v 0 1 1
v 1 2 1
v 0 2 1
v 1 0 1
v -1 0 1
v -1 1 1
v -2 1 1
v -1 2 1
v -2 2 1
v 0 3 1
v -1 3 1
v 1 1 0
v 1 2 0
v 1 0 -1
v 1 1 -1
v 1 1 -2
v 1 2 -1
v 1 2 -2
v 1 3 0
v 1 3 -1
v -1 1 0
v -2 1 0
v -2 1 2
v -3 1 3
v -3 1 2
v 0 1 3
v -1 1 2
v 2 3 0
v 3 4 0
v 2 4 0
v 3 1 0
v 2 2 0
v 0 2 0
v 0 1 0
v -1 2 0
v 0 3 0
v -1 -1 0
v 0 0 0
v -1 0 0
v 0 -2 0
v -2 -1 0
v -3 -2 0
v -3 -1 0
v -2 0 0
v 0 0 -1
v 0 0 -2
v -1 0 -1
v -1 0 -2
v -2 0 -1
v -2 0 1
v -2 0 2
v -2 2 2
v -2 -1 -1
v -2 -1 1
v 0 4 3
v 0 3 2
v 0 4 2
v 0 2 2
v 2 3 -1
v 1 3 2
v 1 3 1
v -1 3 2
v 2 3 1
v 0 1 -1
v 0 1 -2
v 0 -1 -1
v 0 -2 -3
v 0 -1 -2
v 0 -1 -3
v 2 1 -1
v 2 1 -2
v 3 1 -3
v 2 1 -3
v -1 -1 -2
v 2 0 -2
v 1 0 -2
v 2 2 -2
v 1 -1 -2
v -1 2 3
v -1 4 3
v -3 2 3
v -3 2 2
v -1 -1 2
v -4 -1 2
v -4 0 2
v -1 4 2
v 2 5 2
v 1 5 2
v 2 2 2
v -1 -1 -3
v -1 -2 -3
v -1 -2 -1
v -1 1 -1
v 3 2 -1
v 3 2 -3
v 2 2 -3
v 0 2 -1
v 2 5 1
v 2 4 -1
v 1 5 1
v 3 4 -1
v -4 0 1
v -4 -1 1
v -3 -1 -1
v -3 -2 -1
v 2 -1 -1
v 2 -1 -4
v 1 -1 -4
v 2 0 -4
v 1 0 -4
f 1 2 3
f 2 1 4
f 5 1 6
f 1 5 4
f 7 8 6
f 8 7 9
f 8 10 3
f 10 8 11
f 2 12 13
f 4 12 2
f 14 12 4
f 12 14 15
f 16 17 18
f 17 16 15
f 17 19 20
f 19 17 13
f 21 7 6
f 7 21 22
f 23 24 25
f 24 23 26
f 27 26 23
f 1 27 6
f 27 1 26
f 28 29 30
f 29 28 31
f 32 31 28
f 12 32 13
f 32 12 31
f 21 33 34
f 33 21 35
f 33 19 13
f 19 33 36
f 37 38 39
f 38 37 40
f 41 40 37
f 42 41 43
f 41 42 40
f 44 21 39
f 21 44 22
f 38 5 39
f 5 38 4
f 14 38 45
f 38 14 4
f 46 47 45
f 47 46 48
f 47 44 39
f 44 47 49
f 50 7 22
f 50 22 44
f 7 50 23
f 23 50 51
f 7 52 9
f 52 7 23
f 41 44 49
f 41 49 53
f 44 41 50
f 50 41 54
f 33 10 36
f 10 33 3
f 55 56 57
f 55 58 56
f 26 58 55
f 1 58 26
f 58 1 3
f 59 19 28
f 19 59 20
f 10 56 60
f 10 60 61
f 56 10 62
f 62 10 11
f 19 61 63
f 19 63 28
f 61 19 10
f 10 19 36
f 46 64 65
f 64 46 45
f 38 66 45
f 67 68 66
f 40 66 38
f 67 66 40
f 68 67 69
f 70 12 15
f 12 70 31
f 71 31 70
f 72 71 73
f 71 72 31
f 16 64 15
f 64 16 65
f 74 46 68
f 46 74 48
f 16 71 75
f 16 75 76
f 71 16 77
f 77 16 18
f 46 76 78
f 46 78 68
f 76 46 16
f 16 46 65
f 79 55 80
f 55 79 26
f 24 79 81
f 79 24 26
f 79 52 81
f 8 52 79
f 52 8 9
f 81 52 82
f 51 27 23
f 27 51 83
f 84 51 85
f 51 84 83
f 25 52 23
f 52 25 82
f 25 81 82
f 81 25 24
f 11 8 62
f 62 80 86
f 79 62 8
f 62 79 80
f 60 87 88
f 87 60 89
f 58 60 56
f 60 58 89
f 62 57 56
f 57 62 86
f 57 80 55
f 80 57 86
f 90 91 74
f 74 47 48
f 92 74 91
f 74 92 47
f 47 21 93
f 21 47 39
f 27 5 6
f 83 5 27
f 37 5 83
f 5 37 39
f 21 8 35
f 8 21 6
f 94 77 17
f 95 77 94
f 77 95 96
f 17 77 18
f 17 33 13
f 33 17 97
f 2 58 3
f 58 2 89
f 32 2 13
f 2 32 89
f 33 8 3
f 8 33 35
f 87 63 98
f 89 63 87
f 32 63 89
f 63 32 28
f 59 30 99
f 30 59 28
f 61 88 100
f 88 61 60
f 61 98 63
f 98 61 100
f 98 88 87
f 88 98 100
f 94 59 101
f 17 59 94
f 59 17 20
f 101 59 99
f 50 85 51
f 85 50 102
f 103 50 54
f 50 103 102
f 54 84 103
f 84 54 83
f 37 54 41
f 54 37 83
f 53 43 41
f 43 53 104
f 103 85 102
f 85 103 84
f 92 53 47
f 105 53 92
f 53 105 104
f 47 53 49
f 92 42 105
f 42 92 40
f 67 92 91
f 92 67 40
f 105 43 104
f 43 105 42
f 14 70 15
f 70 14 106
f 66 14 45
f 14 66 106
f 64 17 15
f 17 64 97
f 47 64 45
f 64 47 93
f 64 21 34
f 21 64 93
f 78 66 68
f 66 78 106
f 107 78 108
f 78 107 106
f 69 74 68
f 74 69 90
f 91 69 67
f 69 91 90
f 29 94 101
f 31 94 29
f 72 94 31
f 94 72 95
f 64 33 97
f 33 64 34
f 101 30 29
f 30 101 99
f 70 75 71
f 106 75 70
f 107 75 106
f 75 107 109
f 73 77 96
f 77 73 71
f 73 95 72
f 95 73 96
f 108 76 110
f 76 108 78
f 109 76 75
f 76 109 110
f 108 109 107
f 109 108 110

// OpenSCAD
module module_cube_4(translation= [0,0,0]){
    translate(translation)union() {
cube(1,1,1);    
translate([-1,0,0])cube(size = [1,1,1]);
translate([0,1,0])cube(size = [1,1,1]);
translate([0,0,-1])cube(size = [1,1,1]);
    }
};
module module_cube_7(translation= [0,0,0]){
    translate(translation)union() {
cube(1,1,1);    
translate([-2,0,0])cube(size = [2,1,1]);
translate([0,1,0])cube(size = [1,2,1]);
translate([0,0,-2])cube(size = [1,1,2]);
    }
};

color("blue")module_cube_7([0,0,0]);
module_cube_7([-1,1,2]);
module_cube_7([1,2,1]);
module_cube_7([-2,-1,1]);
module_cube_7([-1,-2,-1]);
module_cube_7([2,1,-1]);
module_cube_7([1,-1,-2]);
